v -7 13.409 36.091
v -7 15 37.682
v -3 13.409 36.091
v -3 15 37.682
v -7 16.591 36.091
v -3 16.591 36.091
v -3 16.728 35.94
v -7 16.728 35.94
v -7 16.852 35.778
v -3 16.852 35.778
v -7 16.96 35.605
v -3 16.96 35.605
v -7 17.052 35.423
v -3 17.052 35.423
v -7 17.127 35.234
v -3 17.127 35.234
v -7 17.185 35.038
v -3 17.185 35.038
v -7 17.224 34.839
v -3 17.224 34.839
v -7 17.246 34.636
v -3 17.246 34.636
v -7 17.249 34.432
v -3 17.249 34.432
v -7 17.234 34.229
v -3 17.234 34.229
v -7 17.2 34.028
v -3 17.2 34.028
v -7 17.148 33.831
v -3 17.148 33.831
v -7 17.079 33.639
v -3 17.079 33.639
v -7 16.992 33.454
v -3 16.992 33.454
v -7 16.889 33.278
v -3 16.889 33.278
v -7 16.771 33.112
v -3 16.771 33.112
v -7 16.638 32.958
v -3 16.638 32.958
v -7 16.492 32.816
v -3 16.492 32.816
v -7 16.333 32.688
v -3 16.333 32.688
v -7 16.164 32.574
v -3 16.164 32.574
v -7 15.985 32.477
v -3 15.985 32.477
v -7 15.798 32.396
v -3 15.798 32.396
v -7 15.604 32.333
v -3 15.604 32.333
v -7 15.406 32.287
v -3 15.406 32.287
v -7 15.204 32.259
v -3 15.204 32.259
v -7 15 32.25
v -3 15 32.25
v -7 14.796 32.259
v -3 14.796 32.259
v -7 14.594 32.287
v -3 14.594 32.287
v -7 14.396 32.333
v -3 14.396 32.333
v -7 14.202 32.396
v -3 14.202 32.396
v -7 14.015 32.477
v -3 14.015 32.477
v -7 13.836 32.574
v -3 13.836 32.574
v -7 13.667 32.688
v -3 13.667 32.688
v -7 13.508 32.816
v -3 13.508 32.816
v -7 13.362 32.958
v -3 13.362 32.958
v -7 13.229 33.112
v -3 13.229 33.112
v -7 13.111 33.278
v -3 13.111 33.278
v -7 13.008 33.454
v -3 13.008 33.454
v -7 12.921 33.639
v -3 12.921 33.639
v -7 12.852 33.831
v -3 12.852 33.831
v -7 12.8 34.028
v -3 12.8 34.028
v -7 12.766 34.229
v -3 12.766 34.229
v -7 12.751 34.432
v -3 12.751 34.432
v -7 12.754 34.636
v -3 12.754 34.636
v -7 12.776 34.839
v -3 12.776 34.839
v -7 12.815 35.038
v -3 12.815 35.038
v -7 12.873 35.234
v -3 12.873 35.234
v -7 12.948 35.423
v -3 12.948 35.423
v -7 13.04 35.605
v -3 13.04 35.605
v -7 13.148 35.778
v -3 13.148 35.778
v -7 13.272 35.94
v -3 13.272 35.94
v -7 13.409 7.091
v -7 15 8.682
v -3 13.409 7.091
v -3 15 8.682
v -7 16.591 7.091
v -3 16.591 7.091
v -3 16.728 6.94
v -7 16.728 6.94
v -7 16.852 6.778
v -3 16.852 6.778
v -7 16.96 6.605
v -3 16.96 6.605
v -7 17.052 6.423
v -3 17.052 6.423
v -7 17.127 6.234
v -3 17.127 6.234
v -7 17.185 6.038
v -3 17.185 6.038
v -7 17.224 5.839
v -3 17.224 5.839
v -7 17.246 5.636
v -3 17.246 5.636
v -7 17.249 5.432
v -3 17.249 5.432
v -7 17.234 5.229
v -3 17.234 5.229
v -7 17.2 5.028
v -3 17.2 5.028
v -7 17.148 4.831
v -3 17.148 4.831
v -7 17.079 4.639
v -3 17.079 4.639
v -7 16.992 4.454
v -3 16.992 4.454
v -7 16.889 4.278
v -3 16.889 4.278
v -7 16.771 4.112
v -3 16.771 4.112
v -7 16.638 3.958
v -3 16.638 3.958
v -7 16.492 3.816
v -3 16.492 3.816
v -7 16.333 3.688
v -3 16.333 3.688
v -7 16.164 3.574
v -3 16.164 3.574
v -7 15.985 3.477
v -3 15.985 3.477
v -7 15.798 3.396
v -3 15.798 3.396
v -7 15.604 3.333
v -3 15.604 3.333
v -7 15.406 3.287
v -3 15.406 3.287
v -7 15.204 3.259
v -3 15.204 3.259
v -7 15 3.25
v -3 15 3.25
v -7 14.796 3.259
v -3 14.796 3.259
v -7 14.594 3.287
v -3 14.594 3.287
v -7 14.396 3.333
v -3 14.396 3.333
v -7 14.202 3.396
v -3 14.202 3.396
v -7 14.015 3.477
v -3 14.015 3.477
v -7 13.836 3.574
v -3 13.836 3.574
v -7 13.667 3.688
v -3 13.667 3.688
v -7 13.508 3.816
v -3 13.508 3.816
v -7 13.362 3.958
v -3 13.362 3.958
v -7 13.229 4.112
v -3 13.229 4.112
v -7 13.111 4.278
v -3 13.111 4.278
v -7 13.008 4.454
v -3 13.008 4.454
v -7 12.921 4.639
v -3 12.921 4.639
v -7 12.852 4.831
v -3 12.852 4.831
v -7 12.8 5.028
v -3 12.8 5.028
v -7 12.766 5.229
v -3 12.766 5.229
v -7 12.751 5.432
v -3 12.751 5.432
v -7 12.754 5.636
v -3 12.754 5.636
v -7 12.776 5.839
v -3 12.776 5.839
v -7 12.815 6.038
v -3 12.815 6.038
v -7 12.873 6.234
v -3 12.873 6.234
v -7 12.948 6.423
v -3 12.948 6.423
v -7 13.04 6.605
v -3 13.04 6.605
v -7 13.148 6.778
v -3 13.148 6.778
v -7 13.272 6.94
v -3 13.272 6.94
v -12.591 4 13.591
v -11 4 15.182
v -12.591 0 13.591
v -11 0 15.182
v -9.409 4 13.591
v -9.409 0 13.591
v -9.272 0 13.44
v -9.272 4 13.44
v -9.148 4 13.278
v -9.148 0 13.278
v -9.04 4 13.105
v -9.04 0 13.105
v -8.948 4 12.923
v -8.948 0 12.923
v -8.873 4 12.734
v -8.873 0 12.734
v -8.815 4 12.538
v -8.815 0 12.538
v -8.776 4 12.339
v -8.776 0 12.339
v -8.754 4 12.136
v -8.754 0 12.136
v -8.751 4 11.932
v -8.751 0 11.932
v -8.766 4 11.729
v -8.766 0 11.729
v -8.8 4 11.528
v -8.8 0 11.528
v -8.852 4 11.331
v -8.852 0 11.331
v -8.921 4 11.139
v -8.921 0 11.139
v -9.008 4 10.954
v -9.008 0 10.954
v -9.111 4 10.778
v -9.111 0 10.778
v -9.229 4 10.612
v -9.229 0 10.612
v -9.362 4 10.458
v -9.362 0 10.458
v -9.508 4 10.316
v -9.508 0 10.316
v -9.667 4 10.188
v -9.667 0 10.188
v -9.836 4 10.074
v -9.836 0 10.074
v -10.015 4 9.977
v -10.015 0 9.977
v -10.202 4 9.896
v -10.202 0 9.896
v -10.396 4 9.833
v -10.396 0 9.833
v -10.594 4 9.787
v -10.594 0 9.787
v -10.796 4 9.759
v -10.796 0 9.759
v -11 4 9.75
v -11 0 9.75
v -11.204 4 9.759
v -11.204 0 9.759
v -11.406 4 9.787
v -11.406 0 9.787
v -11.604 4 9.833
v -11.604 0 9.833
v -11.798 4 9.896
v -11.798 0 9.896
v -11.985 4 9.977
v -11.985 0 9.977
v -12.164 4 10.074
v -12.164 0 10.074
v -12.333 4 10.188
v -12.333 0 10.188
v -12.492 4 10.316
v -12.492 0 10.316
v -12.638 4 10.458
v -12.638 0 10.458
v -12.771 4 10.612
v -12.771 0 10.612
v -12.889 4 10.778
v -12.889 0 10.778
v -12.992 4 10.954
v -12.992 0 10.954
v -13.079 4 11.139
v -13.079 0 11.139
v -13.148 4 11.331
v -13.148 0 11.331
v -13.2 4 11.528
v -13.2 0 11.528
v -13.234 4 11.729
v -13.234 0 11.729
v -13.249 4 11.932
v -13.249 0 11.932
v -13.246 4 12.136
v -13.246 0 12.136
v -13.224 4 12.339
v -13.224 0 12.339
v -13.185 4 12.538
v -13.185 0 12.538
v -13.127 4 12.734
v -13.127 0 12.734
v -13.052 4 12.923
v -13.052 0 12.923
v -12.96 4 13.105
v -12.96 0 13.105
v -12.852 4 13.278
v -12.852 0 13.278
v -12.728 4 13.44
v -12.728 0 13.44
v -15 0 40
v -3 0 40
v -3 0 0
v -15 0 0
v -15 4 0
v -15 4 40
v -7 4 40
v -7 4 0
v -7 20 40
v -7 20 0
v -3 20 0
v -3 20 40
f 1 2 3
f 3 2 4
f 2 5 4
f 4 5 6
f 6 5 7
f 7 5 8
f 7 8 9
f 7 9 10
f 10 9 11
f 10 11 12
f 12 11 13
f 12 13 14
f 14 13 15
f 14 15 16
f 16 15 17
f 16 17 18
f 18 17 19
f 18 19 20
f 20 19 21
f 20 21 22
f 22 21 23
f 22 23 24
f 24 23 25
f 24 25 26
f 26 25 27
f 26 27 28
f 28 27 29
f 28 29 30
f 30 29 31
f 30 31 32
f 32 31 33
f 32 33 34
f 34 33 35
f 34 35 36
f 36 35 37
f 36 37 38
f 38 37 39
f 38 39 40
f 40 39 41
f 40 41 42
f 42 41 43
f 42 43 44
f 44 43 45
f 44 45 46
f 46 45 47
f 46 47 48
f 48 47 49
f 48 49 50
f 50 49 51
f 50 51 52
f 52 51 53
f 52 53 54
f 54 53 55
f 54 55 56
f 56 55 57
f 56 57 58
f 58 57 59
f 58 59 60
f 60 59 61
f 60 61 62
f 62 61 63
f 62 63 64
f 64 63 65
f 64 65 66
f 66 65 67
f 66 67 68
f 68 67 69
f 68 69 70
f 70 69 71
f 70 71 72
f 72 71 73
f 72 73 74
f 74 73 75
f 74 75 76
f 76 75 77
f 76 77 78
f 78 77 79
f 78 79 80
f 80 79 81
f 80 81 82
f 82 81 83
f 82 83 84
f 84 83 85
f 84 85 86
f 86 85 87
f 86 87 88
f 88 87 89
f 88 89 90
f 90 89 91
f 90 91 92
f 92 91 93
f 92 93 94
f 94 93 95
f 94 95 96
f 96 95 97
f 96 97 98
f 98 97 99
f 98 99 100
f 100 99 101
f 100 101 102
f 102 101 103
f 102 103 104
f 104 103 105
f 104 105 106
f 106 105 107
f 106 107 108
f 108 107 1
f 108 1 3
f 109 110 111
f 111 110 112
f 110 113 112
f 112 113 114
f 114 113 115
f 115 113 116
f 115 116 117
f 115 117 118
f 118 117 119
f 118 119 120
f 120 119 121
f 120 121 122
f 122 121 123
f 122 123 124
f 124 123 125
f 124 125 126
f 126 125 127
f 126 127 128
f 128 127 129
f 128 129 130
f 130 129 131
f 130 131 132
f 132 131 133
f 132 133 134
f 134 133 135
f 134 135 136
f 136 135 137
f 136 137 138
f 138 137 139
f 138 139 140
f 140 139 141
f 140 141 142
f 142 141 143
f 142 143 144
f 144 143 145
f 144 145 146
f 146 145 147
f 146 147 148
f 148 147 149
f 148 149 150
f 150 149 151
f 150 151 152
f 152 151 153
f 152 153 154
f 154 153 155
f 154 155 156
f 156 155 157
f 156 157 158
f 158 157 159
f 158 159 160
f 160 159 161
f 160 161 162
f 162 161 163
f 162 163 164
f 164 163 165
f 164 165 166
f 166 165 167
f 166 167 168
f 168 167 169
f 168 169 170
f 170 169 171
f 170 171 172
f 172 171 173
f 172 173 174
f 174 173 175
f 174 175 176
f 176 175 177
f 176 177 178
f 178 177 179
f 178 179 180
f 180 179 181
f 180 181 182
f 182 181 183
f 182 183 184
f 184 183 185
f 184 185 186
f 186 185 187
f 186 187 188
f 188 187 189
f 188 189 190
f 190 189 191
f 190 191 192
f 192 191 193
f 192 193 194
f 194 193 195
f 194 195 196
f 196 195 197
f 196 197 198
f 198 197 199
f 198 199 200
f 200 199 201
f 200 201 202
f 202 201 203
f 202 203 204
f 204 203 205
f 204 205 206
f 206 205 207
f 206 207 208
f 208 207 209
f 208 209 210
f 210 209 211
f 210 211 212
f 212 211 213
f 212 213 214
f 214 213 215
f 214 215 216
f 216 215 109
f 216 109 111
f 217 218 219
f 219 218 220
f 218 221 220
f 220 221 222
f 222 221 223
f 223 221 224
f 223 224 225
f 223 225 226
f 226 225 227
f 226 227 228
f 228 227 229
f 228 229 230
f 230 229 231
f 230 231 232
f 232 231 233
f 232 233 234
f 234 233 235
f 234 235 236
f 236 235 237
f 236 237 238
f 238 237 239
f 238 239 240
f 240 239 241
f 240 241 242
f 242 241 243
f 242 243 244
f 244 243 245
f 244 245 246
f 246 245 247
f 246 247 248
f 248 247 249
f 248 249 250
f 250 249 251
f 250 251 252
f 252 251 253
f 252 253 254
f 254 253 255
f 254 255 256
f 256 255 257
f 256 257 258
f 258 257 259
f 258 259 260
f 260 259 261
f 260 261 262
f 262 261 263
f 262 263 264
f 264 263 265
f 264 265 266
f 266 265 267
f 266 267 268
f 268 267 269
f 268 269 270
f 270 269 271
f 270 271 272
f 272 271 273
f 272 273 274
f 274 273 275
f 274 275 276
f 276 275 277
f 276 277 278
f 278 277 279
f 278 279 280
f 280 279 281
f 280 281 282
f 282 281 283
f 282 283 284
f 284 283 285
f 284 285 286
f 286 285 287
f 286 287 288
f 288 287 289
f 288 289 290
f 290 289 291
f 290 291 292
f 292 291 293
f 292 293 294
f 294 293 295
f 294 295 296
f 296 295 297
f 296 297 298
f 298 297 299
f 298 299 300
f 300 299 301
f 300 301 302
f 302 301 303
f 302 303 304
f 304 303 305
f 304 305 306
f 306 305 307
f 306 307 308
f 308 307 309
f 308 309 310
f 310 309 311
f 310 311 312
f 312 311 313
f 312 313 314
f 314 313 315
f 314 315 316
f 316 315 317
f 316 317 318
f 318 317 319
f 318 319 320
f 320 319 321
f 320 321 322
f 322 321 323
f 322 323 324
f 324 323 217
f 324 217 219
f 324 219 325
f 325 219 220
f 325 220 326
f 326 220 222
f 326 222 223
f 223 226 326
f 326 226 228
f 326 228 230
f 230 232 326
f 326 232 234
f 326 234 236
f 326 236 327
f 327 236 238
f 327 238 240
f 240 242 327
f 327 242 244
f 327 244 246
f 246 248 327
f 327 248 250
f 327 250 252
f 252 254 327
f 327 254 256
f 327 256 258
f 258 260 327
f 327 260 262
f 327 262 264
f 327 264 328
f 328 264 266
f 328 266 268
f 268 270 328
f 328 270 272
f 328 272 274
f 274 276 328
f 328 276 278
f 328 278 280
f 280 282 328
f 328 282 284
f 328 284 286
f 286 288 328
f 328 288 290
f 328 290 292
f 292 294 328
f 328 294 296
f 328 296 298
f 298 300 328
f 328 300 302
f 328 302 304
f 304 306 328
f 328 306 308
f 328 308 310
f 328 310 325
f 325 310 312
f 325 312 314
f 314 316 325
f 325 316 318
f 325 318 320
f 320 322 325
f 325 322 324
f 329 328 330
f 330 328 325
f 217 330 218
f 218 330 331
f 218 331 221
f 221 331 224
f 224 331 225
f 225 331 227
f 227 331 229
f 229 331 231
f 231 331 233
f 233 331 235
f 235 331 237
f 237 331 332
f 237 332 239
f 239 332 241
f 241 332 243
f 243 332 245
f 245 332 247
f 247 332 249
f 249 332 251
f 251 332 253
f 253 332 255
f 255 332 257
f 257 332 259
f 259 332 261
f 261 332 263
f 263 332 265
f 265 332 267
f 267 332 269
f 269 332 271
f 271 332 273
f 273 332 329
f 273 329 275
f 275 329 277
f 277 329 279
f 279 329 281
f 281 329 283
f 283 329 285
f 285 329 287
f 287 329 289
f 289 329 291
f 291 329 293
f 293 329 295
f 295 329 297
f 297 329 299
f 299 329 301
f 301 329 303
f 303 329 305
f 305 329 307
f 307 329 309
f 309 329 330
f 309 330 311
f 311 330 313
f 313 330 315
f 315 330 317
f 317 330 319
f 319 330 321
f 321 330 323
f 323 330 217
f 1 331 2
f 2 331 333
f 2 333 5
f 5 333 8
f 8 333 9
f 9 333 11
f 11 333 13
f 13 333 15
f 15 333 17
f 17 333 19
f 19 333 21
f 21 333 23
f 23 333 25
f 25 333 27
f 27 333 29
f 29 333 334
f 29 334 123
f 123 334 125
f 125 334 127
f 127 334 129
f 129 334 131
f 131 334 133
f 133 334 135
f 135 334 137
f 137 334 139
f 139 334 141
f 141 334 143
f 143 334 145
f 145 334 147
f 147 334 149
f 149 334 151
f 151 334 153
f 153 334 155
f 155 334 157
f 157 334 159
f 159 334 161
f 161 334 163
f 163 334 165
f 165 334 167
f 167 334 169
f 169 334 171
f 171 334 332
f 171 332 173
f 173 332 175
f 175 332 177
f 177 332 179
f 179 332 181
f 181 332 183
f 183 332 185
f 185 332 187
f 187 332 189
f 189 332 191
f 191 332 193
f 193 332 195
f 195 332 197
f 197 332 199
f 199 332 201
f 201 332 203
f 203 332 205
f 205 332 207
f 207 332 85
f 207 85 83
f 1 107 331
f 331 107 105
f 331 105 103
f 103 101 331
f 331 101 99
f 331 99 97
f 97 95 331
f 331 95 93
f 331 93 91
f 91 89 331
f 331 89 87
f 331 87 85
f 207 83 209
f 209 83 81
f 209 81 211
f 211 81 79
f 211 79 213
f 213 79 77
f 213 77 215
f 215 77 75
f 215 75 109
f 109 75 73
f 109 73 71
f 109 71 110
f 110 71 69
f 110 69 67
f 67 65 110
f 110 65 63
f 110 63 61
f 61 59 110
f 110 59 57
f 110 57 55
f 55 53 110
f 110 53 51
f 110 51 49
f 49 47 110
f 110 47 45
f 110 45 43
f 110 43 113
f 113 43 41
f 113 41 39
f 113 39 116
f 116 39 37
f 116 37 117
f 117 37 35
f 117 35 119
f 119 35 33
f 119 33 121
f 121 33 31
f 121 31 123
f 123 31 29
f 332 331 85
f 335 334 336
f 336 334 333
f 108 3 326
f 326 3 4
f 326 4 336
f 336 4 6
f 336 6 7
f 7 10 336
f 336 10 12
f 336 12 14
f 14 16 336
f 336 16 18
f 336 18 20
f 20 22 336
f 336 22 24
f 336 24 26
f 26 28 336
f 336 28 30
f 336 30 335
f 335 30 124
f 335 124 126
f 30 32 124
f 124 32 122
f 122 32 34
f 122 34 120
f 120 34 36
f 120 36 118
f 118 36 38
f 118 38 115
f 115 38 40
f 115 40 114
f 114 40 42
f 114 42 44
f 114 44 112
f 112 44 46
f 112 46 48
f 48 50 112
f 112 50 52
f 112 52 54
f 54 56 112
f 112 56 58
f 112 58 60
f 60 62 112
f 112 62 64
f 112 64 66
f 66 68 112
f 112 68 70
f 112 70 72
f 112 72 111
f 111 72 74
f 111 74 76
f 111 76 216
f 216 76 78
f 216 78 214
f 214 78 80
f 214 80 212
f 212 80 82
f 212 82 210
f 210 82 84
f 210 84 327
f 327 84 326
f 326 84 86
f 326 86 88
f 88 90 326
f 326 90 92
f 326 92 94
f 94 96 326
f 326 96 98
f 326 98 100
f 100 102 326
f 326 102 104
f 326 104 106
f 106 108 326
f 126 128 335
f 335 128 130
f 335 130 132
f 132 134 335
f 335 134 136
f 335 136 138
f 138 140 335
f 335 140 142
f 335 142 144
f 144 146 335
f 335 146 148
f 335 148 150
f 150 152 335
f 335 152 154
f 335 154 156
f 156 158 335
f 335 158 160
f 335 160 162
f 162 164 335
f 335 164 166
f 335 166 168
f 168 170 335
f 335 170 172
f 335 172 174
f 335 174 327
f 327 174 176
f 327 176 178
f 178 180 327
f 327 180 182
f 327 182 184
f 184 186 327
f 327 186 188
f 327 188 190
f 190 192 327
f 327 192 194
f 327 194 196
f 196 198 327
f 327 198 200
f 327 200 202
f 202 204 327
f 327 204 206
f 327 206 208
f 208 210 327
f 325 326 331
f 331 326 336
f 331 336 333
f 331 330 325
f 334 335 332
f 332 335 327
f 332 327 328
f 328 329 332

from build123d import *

# Parameters (mm, degrees)
BOSS_EXTRUDE1_DEPTH = 40
CUT_EXTRUDE1_DEPTH  = 46.617978912
CUT_EXTRUDE2_DEPTH  = 50.839743178
SKETCH8_W           = 6
SKETCH8_H           = 40
CUT_EXTRUDE4_DEPTH  = 46.617978912


with BuildPart() as part:
    # Sketch1 → Boss-Extrude1 (new body)
    with BuildSketch(Plane.XY):
        Polygon((-15, 0), (15, 0), (15, 4), (7, 4), (7, 20), (3, 20), (3, 4), (-3, 4), (-3, 20), (-7, 20), (-7, 4), (-15, 4), align=None)
    extrude(amount=BOSS_EXTRUDE1_DEPTH)

    # Sketch2 → Cut-Extrude1 (cut, through all)
    with BuildSketch(Plane(origin=(0, 4, 0), x_dir=(1, 0, 0), z_dir=(0, 1, 0))):
        with BuildLine():
            Line((-12.590990258, -13.590990258), (-11, -15.181980515))
            Line((-11, -15.181980515), (-9.409009742, -13.590990258))
            ThreePointArc((-9.409009742, -13.590990258), (-11, -9.75), (-12.590990258, -13.590990258))
        make_face()
        with BuildLine():
            Line((9.409009742, -13.590990258), (11, -15.181980515))
            Line((11, -15.181980515), (12.590990258, -13.590990258))
            ThreePointArc((12.590990258, -13.590990258), (11, -9.75), (9.409009742, -13.590990258))
        make_face()
    extrude(amount=-CUT_EXTRUDE1_DEPTH, mode=Mode.SUBTRACT)

    # Sketch3 → Cut-Extrude2 (cut, through all)
    with BuildSketch(Plane(origin=(7, 0, 0), x_dir=(0, 0, -1), z_dir=(1, 0, 0))):
        with BuildLine():
            Line((-7.090990258, 16.590990258), (-8.681980515, 15))
            Line((-8.681980515, 15), (-7.090990258, 13.409009742))
            ThreePointArc((-7.090990258, 13.409009742), (-3.25, 15), (-7.090990258, 16.590990258))
        make_face()
        with BuildLine():
            Line((-36.090990258, 16.590990258), (-37.681980515, 15))
            Line((-37.681980515, 15), (-36.090990258, 13.409009742))
            ThreePointArc((-36.090990258, 13.409009742), (-32.25, 15), (-36.090990258, 16.590990258))
        make_face()
    extrude(amount=-CUT_EXTRUDE2_DEPTH, mode=Mode.SUBTRACT)

    # Sketch8 → Cut-Extrude4 (cut, through all)
    with BuildSketch(Plane(origin=(0, 4, 0), x_dir=(1, 0, 0), z_dir=(0, 1, 0))):
        with Locations((0, -20)):
            Rectangle(SKETCH8_W, SKETCH8_H)
    extrude(amount=-CUT_EXTRUDE4_DEPTH, mode=Mode.SUBTRACT)


with BuildPart() as cut_extrude4_piece_1:
    # of the separate pieces the step leaves, piece 1, a body of its own (cut_extrude4_pieces)
    add(part.part.solids().sort_by_distance((-15, 0, 0))[0])


with BuildPart() as cut_extrude4_piece_2:
    # of the separate pieces the step leaves, piece 2, a body of its own (cut_extrude4_pieces)
    add(part.part.solids().sort_by_distance((3, 0, 0))[0])


solid = cut_extrude4_piece_1.part
